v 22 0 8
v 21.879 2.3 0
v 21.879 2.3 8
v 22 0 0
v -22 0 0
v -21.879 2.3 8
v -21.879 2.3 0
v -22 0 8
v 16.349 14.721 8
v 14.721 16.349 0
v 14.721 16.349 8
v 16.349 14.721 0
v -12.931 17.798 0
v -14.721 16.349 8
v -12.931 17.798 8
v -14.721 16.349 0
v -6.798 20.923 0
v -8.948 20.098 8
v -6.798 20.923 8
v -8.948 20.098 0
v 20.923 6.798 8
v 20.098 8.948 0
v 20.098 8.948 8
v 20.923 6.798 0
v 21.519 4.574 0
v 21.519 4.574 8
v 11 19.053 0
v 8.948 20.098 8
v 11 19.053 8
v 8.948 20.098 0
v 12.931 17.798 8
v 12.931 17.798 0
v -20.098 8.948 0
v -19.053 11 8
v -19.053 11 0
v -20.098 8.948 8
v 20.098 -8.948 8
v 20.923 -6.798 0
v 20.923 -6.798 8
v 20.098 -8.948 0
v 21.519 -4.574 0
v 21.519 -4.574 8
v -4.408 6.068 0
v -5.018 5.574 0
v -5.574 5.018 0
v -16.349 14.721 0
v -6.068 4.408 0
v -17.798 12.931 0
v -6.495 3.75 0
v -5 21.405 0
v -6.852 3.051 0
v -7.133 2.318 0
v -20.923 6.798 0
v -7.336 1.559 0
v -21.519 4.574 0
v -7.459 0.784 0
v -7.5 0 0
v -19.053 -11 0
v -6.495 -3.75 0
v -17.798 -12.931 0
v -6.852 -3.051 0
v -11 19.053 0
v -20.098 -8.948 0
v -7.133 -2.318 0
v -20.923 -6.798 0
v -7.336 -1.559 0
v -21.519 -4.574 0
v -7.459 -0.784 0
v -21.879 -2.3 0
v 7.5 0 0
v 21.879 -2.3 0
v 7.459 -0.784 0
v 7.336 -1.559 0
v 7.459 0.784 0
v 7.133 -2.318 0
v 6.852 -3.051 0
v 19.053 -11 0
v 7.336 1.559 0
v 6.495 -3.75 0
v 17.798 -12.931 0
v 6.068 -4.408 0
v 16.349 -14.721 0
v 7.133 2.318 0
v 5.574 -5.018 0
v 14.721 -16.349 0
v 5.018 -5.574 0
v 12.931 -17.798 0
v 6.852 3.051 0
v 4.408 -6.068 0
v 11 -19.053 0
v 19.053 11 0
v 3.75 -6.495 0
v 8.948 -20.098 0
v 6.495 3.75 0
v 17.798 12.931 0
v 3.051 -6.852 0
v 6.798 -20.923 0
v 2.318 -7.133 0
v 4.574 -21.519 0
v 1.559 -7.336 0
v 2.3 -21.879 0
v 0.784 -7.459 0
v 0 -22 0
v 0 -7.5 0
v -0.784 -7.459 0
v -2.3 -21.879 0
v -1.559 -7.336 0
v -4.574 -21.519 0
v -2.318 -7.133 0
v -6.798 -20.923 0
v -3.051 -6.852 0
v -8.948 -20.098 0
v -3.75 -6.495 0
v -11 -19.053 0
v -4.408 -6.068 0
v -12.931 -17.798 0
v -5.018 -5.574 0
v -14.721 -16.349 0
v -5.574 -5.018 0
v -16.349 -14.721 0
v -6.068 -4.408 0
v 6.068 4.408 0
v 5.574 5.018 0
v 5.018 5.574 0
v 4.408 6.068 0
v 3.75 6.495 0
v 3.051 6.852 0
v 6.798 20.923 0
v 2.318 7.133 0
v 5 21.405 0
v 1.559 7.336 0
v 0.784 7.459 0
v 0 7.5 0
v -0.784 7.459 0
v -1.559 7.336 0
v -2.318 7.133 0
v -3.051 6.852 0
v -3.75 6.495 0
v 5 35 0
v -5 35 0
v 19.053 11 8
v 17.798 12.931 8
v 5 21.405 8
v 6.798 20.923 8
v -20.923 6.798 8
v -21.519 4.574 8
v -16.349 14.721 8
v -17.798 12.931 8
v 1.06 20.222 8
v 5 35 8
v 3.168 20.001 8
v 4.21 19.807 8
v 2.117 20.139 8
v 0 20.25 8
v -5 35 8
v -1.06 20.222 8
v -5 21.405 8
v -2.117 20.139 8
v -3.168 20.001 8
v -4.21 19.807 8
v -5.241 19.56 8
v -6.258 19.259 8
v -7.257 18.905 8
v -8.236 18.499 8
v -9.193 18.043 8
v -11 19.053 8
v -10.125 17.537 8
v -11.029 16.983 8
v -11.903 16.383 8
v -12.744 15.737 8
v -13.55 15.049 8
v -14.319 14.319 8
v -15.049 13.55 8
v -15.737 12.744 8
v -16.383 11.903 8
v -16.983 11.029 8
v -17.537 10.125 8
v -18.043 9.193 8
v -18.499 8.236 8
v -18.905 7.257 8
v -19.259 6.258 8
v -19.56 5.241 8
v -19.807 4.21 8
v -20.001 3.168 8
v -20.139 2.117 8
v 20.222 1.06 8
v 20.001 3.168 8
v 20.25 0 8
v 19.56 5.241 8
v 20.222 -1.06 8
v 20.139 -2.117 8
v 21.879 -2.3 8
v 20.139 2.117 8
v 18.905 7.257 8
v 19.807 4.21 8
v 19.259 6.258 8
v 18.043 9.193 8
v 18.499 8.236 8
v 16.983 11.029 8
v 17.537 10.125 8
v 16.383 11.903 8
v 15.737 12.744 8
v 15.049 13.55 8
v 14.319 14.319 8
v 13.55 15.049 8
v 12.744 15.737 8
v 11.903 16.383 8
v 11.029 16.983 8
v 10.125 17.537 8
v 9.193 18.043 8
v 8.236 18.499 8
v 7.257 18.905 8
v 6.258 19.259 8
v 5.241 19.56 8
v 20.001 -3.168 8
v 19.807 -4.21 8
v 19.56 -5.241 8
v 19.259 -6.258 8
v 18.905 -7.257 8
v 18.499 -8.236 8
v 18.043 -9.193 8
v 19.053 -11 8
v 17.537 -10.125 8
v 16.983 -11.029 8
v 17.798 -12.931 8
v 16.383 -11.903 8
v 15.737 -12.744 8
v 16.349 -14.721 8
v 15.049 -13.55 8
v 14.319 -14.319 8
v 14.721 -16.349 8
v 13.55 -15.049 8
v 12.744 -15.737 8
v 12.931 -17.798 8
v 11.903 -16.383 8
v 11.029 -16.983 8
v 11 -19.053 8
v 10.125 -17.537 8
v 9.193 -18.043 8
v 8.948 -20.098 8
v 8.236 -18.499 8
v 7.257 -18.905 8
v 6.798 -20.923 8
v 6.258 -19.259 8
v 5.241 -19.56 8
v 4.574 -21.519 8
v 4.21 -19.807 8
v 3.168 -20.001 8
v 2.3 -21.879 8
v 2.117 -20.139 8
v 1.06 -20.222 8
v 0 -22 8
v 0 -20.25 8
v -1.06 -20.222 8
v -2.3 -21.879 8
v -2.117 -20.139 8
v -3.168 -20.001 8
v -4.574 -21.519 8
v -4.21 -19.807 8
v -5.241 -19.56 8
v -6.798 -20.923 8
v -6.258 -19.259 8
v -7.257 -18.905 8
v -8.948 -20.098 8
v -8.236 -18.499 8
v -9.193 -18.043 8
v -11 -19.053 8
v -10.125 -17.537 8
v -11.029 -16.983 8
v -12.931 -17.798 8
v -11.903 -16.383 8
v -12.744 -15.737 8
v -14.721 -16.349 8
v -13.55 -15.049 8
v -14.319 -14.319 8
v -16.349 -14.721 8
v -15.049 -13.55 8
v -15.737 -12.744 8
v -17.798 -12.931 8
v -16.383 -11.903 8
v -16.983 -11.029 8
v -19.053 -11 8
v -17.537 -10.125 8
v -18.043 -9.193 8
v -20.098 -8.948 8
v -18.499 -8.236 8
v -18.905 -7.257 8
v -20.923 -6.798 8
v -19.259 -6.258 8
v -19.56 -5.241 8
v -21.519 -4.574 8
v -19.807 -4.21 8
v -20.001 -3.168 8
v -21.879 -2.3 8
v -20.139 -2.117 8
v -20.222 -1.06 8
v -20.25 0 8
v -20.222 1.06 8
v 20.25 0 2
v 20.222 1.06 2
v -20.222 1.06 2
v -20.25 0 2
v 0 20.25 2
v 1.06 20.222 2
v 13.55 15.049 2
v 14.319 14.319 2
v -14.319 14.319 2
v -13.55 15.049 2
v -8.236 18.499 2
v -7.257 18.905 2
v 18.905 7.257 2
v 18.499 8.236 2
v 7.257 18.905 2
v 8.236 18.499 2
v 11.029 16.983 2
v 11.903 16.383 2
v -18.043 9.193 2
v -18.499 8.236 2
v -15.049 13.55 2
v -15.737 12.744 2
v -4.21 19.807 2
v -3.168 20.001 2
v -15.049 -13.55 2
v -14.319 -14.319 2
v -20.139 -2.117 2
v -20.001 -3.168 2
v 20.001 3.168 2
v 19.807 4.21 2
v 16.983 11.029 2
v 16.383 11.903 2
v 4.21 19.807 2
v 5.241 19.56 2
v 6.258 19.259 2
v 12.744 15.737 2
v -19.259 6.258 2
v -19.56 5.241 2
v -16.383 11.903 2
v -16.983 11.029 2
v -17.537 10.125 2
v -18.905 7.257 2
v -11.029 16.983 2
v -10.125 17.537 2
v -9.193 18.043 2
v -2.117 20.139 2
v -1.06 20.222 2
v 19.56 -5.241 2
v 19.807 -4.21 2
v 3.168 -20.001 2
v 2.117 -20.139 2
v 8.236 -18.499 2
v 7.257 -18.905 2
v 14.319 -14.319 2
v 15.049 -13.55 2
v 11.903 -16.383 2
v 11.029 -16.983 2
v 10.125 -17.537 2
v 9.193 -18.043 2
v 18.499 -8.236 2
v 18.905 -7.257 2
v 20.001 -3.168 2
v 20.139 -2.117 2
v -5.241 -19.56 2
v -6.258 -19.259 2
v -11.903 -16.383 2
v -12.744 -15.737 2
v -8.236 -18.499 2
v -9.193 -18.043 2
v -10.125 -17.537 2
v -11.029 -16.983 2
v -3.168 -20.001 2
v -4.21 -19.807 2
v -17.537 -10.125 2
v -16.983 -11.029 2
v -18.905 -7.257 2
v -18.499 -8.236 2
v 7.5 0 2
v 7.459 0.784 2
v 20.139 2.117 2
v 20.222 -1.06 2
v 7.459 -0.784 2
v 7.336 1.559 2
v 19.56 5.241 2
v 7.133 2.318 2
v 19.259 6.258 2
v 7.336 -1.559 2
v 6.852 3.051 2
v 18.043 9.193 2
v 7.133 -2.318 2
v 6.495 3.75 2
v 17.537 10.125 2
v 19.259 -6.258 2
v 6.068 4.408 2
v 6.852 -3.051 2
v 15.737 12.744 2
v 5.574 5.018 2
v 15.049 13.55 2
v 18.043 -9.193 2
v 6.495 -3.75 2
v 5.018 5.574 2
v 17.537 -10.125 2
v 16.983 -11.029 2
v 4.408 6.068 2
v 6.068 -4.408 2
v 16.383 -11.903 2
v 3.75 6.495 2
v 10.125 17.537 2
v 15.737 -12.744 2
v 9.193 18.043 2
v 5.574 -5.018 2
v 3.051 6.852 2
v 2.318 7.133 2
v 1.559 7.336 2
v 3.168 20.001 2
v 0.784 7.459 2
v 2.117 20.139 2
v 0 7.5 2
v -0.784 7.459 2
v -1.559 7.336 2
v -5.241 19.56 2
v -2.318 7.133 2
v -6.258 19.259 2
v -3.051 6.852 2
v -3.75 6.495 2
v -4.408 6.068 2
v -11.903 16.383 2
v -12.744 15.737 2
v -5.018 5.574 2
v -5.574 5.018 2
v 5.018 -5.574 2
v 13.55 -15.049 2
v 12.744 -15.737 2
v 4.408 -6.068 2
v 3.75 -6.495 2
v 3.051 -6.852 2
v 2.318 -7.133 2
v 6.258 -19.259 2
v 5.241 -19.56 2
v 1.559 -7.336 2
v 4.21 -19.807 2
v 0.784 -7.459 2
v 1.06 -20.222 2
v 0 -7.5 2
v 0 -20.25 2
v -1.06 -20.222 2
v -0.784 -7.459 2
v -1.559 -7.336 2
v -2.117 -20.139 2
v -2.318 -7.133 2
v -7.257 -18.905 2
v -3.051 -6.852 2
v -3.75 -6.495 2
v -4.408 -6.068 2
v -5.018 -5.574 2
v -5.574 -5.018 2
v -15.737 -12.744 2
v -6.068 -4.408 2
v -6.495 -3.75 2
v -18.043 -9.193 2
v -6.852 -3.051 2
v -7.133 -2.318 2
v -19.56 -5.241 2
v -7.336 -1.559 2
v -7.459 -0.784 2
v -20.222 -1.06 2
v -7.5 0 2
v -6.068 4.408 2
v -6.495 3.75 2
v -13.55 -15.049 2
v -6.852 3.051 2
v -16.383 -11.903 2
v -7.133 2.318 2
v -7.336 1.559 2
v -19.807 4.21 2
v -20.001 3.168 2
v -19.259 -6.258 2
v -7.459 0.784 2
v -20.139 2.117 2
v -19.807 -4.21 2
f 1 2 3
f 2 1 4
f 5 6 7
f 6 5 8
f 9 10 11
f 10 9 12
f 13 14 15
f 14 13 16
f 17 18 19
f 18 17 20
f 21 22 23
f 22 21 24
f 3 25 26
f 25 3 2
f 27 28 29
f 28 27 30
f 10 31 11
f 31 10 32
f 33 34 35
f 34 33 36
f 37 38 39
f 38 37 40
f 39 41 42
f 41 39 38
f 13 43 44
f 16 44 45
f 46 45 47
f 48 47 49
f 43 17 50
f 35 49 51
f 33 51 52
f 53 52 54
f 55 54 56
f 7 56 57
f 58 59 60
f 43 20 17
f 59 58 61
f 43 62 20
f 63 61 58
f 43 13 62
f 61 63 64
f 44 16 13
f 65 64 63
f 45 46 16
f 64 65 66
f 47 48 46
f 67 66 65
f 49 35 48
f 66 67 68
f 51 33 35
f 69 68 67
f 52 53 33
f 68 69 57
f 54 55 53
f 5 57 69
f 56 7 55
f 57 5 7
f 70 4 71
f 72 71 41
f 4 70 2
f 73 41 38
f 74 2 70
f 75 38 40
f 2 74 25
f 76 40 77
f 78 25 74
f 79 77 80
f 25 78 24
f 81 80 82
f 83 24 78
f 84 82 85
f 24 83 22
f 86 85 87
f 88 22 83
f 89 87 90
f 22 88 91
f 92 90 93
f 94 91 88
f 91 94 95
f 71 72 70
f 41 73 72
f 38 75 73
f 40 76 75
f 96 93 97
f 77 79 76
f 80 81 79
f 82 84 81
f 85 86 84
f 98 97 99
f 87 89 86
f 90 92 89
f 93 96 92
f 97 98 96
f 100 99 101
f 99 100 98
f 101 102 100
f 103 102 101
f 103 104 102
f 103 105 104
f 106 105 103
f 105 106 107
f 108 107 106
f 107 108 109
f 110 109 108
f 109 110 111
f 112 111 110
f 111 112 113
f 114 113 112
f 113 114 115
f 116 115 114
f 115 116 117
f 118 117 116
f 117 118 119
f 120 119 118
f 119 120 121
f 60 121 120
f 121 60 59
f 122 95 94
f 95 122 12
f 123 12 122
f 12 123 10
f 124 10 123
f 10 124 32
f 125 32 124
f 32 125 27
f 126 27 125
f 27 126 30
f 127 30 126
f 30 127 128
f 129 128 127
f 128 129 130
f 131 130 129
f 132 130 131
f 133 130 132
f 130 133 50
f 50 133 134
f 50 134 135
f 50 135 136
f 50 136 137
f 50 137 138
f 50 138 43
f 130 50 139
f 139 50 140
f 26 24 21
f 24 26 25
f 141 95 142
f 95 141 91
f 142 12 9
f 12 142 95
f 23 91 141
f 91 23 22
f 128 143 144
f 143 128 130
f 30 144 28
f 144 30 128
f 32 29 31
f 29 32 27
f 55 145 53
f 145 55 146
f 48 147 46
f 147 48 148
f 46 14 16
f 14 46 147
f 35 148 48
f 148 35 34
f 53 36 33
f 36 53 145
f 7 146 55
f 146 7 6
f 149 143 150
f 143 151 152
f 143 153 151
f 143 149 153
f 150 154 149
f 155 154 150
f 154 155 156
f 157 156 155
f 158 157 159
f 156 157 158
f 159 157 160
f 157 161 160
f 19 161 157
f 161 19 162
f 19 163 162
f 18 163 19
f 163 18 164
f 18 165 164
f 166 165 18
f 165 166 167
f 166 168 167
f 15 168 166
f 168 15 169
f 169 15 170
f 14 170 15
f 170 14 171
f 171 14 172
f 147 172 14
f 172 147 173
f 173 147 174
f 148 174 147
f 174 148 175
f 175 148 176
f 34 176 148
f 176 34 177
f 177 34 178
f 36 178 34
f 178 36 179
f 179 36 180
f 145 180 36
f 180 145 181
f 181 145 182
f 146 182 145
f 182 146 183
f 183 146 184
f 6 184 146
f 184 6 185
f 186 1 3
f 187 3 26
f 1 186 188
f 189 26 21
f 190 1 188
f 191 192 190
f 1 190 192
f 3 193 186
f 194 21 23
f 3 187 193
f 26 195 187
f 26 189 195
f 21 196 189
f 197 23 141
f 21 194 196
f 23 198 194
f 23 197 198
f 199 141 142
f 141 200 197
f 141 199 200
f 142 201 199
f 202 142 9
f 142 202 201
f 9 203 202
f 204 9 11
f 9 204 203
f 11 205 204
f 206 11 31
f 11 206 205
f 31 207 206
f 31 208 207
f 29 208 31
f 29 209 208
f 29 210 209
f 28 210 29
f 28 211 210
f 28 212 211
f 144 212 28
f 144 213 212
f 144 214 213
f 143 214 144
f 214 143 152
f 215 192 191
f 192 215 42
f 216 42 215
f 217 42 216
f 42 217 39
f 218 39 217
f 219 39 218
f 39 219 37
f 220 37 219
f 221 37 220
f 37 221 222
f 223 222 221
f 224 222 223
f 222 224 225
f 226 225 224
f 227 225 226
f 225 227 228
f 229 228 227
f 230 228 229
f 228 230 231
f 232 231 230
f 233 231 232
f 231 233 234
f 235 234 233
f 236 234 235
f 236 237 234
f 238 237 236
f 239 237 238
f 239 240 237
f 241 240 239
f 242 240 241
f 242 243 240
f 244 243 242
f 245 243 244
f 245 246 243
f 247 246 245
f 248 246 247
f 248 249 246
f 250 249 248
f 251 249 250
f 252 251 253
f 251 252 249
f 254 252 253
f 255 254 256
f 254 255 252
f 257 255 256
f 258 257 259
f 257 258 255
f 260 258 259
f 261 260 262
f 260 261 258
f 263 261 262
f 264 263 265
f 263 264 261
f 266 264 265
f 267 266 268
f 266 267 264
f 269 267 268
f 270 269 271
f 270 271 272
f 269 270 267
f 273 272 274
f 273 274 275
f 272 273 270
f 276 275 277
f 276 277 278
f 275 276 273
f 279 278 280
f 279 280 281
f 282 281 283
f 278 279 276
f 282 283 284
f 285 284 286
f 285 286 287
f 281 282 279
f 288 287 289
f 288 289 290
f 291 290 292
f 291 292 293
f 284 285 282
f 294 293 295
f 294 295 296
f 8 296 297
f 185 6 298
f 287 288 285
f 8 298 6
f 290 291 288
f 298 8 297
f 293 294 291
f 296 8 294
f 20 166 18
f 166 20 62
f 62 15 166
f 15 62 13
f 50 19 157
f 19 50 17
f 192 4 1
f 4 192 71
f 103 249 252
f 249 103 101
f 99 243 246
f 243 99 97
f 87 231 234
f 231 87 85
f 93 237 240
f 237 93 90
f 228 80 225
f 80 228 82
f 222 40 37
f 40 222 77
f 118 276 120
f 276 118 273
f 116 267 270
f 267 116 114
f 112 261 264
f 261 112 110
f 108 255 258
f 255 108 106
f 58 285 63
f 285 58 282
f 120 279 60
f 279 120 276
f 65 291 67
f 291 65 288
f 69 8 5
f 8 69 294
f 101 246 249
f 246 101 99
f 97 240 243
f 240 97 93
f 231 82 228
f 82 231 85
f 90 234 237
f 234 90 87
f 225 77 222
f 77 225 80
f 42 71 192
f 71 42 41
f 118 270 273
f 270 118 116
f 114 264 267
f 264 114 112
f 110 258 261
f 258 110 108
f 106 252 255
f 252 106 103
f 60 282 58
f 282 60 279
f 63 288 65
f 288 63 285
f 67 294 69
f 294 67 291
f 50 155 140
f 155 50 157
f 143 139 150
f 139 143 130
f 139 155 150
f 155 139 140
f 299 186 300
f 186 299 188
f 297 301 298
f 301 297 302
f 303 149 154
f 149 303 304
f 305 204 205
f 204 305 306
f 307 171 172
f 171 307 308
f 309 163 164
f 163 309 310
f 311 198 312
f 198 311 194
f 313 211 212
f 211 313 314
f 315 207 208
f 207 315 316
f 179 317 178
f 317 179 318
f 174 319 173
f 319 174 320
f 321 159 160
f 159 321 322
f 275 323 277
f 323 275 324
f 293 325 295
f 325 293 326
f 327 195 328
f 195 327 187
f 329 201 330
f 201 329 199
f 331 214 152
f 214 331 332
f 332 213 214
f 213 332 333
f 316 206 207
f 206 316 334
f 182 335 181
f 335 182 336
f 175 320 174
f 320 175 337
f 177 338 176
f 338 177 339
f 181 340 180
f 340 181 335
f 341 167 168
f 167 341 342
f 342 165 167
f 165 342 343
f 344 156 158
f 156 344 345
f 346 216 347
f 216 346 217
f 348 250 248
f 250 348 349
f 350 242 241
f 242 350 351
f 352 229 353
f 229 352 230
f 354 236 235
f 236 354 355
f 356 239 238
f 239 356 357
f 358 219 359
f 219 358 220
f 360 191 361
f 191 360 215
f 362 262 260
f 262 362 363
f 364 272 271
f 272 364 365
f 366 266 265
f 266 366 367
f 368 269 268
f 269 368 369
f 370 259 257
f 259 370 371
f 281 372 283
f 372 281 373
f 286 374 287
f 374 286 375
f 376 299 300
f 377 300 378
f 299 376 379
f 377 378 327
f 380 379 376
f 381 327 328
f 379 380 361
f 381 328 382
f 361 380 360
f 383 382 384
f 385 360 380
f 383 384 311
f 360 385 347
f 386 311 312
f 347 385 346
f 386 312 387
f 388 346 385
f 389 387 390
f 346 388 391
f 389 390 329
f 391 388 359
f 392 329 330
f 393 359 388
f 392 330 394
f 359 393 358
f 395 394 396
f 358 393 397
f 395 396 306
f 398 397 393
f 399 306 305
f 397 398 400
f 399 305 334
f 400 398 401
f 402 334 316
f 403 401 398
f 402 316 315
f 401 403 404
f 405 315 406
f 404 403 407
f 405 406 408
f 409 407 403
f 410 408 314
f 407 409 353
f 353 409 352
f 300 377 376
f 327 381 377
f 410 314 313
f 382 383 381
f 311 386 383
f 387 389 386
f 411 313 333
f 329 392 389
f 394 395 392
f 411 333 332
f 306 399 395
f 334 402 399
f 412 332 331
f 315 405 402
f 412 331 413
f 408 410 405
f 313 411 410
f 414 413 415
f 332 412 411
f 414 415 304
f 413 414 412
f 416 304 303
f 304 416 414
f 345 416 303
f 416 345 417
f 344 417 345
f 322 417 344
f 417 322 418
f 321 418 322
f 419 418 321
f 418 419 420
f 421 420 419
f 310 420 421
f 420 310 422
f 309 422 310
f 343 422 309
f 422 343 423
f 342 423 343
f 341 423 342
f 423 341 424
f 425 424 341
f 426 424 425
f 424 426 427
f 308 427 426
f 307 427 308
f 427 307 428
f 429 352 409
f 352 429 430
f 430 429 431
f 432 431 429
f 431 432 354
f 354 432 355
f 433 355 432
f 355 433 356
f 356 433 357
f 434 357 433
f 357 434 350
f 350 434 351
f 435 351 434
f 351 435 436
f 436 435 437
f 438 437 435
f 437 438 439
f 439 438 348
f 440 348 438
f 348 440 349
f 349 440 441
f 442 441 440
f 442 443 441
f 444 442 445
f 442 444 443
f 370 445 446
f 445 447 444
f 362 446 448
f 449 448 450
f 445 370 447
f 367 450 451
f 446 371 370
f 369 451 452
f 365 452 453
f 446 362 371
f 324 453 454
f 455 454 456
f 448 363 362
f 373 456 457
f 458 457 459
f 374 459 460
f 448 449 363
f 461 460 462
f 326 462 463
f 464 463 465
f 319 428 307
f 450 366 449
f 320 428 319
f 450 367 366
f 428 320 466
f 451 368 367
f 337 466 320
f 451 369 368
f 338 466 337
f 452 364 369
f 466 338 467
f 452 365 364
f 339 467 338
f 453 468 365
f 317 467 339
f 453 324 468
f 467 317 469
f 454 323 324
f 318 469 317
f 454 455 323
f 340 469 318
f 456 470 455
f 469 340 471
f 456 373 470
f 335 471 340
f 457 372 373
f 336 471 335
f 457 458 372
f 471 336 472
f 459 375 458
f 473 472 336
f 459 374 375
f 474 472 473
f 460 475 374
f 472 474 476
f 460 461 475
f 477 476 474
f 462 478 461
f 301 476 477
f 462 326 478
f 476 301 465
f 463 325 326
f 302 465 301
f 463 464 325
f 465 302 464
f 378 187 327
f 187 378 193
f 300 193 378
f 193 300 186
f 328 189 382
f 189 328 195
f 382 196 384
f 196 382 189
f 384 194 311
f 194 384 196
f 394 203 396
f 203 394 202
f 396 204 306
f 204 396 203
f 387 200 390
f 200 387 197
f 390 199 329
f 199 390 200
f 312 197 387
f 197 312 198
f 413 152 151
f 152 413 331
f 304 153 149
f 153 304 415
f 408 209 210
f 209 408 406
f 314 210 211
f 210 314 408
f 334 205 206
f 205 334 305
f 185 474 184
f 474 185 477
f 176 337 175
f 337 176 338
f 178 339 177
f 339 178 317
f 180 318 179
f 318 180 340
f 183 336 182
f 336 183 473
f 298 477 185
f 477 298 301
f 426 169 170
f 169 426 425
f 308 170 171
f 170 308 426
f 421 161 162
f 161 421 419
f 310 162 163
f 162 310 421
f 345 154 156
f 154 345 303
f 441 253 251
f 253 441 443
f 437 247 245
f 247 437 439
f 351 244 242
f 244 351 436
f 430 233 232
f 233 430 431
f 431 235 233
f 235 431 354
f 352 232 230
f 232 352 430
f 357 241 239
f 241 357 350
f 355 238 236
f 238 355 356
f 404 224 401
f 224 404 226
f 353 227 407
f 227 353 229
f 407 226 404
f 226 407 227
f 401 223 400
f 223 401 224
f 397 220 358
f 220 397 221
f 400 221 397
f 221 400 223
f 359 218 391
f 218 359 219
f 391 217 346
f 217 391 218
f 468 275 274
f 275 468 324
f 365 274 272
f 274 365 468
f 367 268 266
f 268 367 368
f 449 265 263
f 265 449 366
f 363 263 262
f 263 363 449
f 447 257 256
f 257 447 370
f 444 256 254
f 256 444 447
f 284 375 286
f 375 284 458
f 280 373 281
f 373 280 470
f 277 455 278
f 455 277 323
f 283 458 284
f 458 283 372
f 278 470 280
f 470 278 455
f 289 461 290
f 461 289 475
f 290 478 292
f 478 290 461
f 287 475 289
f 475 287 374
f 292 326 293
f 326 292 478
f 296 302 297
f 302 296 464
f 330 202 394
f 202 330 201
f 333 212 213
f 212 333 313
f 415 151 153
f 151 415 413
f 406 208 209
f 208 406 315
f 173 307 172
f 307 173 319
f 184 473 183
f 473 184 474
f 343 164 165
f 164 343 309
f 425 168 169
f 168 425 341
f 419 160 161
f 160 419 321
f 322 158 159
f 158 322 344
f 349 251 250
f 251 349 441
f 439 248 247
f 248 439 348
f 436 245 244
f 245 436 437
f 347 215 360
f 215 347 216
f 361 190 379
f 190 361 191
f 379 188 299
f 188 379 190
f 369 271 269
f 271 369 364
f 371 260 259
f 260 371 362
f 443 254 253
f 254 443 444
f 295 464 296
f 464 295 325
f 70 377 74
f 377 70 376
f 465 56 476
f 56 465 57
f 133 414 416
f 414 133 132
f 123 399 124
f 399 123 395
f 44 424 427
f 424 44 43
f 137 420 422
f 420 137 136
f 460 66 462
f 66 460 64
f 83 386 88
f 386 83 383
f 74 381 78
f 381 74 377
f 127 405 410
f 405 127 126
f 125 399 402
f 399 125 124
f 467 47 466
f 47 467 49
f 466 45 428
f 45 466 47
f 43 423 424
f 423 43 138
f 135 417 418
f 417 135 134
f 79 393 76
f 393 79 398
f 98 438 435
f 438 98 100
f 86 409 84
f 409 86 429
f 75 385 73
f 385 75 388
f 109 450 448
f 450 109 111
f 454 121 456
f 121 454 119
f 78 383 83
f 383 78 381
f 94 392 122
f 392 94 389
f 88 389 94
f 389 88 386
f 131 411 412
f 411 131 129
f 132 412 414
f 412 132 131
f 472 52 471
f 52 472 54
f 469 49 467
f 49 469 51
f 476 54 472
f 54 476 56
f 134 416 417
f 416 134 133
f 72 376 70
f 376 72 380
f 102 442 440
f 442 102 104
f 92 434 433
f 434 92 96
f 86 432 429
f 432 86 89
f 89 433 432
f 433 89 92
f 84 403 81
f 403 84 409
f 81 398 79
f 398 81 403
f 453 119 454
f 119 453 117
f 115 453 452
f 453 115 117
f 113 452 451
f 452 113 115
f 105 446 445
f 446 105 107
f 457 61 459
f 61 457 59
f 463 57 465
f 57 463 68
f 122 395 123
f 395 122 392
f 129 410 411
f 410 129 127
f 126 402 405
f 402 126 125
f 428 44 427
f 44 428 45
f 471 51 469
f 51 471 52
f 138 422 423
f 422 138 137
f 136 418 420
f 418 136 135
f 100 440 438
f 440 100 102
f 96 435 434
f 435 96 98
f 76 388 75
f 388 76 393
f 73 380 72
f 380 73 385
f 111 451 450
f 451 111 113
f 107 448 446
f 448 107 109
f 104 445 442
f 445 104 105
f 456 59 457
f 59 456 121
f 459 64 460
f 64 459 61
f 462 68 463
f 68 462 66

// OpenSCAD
include <BOSL/constants.scad>
use <BOSL/shapes.scad>
use <BOSL/transforms.scad>
use <BOSL/masks.scad>

fileVersion = "1D";
  
$fn=60; //circle smoothness

main();
  
module main(){
  difference(){
    union(){
     color("lime") cylinder(h=8, d=44); //outer shell
     color("lime") back(20) up(4) cuboid([10, 30, 8]);
    }
    color("green") up(2) cylinder(h=10, d=40.5, $fn=120); //cutout for trackpoint
    color("pink") cylinder(h=10, d=15); // finger hole for release
  }
}  
